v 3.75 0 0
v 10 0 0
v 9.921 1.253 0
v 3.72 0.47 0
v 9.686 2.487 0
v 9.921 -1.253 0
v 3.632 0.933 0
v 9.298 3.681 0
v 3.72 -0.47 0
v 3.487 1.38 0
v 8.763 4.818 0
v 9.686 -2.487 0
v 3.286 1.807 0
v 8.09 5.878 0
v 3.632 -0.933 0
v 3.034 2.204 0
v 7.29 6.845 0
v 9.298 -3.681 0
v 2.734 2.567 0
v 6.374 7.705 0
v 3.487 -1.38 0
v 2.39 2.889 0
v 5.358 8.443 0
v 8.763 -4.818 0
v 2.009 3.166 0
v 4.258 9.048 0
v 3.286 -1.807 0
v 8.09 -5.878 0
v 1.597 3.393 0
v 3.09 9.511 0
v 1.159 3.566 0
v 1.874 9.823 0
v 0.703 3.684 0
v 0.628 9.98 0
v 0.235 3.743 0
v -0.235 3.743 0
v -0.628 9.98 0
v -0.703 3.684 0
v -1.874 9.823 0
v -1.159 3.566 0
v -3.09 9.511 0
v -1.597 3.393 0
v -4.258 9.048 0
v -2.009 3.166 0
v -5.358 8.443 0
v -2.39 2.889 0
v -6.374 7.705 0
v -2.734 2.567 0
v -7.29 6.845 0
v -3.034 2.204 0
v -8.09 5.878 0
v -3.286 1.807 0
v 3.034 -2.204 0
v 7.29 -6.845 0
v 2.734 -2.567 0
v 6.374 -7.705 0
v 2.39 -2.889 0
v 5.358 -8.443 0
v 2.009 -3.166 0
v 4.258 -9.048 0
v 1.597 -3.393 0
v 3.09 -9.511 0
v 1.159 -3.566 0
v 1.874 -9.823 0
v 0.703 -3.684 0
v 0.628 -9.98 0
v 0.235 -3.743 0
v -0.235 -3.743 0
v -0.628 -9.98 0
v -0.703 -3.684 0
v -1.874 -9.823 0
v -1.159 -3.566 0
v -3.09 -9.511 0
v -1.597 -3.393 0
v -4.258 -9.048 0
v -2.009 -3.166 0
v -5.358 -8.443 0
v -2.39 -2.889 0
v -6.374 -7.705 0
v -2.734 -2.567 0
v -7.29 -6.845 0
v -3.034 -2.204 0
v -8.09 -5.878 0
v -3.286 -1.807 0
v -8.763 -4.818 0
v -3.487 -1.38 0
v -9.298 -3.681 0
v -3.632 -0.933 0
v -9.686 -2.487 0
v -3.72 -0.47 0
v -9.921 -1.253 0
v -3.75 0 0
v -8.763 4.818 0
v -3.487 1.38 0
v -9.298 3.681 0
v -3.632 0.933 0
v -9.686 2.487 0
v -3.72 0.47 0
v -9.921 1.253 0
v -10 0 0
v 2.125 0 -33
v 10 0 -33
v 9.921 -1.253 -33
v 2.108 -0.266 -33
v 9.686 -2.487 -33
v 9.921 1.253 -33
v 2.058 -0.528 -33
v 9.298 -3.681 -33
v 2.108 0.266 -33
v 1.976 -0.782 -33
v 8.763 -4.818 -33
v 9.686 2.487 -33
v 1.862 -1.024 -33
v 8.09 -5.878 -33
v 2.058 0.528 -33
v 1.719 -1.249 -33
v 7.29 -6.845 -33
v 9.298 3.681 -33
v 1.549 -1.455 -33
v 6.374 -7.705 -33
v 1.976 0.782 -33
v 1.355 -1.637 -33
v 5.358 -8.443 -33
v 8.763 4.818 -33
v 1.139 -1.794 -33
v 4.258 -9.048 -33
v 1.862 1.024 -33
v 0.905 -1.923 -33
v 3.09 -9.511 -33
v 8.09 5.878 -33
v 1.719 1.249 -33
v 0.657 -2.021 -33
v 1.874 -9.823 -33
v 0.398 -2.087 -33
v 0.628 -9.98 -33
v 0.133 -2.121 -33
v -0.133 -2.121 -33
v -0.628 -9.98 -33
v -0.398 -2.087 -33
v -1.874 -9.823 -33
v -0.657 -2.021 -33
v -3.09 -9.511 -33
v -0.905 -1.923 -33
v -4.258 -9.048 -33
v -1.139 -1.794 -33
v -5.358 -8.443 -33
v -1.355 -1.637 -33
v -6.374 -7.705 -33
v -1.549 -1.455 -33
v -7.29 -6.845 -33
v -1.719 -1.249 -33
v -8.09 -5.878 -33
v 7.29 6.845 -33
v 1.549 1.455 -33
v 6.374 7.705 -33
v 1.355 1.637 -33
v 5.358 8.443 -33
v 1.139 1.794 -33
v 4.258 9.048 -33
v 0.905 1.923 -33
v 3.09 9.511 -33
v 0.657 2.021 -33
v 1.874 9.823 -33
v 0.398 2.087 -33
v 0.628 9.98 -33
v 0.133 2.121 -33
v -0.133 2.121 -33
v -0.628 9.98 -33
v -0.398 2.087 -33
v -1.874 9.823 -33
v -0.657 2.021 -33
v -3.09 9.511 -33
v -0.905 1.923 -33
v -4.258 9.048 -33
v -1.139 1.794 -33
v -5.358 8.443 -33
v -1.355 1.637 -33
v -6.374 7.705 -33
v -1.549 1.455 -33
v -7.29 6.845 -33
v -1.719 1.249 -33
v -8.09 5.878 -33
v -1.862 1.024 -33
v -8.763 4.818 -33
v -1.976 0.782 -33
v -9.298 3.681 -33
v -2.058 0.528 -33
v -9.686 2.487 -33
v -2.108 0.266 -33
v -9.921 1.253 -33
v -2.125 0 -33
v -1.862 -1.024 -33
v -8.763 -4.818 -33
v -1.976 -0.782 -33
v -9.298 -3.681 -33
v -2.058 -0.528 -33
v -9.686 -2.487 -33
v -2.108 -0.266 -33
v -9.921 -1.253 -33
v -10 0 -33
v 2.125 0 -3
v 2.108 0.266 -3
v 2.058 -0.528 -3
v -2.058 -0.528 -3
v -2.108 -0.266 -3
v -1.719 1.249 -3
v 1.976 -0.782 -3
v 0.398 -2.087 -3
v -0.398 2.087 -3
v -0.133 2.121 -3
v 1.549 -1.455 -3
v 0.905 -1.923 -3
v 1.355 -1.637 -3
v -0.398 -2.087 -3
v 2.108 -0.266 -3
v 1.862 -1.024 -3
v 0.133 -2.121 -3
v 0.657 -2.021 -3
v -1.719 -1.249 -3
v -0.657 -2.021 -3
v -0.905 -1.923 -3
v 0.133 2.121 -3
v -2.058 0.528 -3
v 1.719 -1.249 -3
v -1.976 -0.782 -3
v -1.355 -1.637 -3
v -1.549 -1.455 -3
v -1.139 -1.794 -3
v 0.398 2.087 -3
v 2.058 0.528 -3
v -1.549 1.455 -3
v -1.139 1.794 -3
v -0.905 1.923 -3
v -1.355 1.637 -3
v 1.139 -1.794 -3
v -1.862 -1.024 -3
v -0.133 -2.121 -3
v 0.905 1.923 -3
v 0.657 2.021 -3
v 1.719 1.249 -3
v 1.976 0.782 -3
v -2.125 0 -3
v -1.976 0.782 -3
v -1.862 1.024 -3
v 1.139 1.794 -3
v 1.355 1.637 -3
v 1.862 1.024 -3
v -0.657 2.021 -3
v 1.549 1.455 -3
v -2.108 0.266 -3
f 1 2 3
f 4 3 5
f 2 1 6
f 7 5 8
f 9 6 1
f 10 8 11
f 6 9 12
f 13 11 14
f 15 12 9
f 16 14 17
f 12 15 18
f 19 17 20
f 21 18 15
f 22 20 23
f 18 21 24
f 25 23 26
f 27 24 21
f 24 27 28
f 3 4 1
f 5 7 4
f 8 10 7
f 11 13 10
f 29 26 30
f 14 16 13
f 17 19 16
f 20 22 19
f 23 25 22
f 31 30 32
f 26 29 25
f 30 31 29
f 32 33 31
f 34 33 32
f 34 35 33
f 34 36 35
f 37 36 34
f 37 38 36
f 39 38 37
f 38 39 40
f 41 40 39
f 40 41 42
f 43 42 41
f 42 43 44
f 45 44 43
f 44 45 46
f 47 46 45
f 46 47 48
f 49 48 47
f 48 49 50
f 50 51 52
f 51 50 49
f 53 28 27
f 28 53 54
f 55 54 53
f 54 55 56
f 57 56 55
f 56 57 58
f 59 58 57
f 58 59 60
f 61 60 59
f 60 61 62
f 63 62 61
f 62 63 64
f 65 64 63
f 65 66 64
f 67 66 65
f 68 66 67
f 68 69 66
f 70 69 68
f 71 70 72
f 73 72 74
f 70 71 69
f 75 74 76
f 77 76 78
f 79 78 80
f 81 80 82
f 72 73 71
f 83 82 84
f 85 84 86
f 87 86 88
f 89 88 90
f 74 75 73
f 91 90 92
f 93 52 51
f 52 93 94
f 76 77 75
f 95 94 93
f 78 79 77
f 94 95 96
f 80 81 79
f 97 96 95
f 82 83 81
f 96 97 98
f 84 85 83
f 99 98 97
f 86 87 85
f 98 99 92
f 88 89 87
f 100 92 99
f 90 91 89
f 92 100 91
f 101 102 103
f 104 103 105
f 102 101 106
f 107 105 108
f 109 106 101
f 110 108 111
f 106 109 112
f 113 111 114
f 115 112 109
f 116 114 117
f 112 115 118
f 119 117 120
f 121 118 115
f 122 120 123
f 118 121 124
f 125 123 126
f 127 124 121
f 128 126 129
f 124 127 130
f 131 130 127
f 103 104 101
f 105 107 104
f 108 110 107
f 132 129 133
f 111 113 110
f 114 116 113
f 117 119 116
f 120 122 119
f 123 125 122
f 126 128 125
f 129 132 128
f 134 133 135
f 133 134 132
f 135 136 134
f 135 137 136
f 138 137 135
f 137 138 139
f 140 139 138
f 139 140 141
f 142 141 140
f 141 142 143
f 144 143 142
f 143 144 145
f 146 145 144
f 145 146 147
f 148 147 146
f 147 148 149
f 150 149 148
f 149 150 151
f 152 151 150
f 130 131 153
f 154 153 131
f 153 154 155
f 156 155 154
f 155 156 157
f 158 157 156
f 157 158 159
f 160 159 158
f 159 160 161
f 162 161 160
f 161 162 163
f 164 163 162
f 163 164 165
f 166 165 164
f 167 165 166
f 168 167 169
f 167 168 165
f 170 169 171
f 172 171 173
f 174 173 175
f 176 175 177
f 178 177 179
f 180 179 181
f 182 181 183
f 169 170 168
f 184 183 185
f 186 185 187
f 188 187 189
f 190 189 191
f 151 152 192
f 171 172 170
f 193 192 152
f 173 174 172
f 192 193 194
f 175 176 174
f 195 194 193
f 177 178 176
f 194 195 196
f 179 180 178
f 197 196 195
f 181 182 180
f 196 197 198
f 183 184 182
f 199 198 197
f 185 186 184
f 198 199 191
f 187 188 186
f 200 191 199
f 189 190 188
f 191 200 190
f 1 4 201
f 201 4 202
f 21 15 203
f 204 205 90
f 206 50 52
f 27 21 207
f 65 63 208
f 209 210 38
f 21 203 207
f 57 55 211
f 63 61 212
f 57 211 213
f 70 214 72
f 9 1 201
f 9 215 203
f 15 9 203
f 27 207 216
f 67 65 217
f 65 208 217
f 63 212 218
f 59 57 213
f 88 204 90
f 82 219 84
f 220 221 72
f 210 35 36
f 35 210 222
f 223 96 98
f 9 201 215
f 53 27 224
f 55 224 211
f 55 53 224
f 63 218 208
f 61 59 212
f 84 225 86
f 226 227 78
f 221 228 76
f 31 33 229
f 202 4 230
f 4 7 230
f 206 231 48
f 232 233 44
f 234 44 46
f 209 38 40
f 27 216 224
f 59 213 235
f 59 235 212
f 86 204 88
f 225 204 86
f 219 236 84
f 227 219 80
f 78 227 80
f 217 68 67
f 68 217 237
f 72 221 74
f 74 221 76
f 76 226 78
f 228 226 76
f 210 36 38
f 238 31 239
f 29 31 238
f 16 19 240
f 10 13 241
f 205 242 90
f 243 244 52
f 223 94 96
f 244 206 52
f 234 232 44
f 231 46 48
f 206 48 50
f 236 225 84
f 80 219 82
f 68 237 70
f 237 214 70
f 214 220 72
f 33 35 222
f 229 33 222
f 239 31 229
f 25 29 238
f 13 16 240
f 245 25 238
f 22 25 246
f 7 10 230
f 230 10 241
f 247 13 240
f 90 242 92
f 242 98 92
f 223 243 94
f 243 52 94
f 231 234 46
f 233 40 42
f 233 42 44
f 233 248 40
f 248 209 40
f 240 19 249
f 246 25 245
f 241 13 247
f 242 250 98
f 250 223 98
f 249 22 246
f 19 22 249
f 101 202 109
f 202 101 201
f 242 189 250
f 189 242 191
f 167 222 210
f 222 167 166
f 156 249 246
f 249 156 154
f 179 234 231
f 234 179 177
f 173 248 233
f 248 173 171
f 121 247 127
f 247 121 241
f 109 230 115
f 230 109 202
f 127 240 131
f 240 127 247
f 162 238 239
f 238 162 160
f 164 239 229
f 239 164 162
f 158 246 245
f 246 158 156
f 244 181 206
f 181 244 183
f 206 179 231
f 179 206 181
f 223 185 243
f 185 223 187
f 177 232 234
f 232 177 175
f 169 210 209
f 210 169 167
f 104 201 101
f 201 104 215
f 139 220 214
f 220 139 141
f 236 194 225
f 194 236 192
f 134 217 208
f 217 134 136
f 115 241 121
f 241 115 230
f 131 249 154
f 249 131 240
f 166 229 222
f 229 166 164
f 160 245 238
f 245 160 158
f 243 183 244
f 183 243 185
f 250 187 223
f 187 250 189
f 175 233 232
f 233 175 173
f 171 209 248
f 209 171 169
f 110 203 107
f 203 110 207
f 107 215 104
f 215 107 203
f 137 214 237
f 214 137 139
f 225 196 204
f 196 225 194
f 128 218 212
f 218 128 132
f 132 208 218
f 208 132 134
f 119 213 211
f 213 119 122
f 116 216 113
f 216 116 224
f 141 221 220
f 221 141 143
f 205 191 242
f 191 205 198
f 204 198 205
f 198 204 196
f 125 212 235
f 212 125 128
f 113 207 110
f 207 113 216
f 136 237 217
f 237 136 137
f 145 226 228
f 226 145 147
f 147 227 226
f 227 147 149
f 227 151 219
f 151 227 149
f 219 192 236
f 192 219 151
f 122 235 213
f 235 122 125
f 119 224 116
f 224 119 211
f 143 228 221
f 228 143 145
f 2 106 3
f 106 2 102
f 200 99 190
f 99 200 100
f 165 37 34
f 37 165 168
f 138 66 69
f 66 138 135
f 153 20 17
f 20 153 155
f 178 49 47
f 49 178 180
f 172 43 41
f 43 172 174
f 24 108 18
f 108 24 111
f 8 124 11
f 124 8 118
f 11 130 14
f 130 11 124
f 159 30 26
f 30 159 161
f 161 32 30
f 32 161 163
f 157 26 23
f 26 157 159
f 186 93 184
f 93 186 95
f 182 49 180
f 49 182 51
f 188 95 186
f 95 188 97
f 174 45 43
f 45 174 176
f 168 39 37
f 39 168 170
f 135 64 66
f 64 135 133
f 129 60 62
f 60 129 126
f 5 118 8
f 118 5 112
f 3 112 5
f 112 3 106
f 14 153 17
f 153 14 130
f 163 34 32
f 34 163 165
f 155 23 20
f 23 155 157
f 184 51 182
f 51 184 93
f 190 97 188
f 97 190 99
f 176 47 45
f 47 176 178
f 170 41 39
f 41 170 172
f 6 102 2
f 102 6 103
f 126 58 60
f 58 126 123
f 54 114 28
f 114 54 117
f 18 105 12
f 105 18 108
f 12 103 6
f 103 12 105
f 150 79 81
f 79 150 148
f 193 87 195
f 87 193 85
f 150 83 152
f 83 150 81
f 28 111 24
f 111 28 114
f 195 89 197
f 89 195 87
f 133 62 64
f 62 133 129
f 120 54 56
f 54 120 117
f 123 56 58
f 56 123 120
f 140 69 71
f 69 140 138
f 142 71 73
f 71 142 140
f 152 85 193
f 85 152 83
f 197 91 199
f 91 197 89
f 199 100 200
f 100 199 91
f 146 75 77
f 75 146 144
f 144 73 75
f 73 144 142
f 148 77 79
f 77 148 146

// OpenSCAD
$fn = 50;


difference() {
	union() {
		translate(v = [0, 0, -33.0000000000]) {
			cylinder(h = 33, r = 10.0000000000);
		}
		cylinder(h = 0, r = 16.0000000000);
	}
	union() {
		translate(v = [0, 0, 0]) {
			rotate(a = [0, 0, 0]) {
				difference() {
					union() {
						#translate(v = [0, 0, -33.0000000000]) {
							cylinder(h = 33, r = 2.0000000000);
						}
						#translate(v = [0, 0, -3]) {
							cylinder(h = 3, r = 10.0000000000, r1 = 2.1250000000, r2 = 3.7500000000);
						}
						#translate(v = [0, 0, -33.0000000000]) {
							cylinder(h = 33, r = 2.1250000000);
						}
						#translate(v = [0, 0, -33.0000000000]) {
							cylinder(h = 33, r = 2.0000000000);
						}
					}
					union();
				}
			}
		}
	}
}
